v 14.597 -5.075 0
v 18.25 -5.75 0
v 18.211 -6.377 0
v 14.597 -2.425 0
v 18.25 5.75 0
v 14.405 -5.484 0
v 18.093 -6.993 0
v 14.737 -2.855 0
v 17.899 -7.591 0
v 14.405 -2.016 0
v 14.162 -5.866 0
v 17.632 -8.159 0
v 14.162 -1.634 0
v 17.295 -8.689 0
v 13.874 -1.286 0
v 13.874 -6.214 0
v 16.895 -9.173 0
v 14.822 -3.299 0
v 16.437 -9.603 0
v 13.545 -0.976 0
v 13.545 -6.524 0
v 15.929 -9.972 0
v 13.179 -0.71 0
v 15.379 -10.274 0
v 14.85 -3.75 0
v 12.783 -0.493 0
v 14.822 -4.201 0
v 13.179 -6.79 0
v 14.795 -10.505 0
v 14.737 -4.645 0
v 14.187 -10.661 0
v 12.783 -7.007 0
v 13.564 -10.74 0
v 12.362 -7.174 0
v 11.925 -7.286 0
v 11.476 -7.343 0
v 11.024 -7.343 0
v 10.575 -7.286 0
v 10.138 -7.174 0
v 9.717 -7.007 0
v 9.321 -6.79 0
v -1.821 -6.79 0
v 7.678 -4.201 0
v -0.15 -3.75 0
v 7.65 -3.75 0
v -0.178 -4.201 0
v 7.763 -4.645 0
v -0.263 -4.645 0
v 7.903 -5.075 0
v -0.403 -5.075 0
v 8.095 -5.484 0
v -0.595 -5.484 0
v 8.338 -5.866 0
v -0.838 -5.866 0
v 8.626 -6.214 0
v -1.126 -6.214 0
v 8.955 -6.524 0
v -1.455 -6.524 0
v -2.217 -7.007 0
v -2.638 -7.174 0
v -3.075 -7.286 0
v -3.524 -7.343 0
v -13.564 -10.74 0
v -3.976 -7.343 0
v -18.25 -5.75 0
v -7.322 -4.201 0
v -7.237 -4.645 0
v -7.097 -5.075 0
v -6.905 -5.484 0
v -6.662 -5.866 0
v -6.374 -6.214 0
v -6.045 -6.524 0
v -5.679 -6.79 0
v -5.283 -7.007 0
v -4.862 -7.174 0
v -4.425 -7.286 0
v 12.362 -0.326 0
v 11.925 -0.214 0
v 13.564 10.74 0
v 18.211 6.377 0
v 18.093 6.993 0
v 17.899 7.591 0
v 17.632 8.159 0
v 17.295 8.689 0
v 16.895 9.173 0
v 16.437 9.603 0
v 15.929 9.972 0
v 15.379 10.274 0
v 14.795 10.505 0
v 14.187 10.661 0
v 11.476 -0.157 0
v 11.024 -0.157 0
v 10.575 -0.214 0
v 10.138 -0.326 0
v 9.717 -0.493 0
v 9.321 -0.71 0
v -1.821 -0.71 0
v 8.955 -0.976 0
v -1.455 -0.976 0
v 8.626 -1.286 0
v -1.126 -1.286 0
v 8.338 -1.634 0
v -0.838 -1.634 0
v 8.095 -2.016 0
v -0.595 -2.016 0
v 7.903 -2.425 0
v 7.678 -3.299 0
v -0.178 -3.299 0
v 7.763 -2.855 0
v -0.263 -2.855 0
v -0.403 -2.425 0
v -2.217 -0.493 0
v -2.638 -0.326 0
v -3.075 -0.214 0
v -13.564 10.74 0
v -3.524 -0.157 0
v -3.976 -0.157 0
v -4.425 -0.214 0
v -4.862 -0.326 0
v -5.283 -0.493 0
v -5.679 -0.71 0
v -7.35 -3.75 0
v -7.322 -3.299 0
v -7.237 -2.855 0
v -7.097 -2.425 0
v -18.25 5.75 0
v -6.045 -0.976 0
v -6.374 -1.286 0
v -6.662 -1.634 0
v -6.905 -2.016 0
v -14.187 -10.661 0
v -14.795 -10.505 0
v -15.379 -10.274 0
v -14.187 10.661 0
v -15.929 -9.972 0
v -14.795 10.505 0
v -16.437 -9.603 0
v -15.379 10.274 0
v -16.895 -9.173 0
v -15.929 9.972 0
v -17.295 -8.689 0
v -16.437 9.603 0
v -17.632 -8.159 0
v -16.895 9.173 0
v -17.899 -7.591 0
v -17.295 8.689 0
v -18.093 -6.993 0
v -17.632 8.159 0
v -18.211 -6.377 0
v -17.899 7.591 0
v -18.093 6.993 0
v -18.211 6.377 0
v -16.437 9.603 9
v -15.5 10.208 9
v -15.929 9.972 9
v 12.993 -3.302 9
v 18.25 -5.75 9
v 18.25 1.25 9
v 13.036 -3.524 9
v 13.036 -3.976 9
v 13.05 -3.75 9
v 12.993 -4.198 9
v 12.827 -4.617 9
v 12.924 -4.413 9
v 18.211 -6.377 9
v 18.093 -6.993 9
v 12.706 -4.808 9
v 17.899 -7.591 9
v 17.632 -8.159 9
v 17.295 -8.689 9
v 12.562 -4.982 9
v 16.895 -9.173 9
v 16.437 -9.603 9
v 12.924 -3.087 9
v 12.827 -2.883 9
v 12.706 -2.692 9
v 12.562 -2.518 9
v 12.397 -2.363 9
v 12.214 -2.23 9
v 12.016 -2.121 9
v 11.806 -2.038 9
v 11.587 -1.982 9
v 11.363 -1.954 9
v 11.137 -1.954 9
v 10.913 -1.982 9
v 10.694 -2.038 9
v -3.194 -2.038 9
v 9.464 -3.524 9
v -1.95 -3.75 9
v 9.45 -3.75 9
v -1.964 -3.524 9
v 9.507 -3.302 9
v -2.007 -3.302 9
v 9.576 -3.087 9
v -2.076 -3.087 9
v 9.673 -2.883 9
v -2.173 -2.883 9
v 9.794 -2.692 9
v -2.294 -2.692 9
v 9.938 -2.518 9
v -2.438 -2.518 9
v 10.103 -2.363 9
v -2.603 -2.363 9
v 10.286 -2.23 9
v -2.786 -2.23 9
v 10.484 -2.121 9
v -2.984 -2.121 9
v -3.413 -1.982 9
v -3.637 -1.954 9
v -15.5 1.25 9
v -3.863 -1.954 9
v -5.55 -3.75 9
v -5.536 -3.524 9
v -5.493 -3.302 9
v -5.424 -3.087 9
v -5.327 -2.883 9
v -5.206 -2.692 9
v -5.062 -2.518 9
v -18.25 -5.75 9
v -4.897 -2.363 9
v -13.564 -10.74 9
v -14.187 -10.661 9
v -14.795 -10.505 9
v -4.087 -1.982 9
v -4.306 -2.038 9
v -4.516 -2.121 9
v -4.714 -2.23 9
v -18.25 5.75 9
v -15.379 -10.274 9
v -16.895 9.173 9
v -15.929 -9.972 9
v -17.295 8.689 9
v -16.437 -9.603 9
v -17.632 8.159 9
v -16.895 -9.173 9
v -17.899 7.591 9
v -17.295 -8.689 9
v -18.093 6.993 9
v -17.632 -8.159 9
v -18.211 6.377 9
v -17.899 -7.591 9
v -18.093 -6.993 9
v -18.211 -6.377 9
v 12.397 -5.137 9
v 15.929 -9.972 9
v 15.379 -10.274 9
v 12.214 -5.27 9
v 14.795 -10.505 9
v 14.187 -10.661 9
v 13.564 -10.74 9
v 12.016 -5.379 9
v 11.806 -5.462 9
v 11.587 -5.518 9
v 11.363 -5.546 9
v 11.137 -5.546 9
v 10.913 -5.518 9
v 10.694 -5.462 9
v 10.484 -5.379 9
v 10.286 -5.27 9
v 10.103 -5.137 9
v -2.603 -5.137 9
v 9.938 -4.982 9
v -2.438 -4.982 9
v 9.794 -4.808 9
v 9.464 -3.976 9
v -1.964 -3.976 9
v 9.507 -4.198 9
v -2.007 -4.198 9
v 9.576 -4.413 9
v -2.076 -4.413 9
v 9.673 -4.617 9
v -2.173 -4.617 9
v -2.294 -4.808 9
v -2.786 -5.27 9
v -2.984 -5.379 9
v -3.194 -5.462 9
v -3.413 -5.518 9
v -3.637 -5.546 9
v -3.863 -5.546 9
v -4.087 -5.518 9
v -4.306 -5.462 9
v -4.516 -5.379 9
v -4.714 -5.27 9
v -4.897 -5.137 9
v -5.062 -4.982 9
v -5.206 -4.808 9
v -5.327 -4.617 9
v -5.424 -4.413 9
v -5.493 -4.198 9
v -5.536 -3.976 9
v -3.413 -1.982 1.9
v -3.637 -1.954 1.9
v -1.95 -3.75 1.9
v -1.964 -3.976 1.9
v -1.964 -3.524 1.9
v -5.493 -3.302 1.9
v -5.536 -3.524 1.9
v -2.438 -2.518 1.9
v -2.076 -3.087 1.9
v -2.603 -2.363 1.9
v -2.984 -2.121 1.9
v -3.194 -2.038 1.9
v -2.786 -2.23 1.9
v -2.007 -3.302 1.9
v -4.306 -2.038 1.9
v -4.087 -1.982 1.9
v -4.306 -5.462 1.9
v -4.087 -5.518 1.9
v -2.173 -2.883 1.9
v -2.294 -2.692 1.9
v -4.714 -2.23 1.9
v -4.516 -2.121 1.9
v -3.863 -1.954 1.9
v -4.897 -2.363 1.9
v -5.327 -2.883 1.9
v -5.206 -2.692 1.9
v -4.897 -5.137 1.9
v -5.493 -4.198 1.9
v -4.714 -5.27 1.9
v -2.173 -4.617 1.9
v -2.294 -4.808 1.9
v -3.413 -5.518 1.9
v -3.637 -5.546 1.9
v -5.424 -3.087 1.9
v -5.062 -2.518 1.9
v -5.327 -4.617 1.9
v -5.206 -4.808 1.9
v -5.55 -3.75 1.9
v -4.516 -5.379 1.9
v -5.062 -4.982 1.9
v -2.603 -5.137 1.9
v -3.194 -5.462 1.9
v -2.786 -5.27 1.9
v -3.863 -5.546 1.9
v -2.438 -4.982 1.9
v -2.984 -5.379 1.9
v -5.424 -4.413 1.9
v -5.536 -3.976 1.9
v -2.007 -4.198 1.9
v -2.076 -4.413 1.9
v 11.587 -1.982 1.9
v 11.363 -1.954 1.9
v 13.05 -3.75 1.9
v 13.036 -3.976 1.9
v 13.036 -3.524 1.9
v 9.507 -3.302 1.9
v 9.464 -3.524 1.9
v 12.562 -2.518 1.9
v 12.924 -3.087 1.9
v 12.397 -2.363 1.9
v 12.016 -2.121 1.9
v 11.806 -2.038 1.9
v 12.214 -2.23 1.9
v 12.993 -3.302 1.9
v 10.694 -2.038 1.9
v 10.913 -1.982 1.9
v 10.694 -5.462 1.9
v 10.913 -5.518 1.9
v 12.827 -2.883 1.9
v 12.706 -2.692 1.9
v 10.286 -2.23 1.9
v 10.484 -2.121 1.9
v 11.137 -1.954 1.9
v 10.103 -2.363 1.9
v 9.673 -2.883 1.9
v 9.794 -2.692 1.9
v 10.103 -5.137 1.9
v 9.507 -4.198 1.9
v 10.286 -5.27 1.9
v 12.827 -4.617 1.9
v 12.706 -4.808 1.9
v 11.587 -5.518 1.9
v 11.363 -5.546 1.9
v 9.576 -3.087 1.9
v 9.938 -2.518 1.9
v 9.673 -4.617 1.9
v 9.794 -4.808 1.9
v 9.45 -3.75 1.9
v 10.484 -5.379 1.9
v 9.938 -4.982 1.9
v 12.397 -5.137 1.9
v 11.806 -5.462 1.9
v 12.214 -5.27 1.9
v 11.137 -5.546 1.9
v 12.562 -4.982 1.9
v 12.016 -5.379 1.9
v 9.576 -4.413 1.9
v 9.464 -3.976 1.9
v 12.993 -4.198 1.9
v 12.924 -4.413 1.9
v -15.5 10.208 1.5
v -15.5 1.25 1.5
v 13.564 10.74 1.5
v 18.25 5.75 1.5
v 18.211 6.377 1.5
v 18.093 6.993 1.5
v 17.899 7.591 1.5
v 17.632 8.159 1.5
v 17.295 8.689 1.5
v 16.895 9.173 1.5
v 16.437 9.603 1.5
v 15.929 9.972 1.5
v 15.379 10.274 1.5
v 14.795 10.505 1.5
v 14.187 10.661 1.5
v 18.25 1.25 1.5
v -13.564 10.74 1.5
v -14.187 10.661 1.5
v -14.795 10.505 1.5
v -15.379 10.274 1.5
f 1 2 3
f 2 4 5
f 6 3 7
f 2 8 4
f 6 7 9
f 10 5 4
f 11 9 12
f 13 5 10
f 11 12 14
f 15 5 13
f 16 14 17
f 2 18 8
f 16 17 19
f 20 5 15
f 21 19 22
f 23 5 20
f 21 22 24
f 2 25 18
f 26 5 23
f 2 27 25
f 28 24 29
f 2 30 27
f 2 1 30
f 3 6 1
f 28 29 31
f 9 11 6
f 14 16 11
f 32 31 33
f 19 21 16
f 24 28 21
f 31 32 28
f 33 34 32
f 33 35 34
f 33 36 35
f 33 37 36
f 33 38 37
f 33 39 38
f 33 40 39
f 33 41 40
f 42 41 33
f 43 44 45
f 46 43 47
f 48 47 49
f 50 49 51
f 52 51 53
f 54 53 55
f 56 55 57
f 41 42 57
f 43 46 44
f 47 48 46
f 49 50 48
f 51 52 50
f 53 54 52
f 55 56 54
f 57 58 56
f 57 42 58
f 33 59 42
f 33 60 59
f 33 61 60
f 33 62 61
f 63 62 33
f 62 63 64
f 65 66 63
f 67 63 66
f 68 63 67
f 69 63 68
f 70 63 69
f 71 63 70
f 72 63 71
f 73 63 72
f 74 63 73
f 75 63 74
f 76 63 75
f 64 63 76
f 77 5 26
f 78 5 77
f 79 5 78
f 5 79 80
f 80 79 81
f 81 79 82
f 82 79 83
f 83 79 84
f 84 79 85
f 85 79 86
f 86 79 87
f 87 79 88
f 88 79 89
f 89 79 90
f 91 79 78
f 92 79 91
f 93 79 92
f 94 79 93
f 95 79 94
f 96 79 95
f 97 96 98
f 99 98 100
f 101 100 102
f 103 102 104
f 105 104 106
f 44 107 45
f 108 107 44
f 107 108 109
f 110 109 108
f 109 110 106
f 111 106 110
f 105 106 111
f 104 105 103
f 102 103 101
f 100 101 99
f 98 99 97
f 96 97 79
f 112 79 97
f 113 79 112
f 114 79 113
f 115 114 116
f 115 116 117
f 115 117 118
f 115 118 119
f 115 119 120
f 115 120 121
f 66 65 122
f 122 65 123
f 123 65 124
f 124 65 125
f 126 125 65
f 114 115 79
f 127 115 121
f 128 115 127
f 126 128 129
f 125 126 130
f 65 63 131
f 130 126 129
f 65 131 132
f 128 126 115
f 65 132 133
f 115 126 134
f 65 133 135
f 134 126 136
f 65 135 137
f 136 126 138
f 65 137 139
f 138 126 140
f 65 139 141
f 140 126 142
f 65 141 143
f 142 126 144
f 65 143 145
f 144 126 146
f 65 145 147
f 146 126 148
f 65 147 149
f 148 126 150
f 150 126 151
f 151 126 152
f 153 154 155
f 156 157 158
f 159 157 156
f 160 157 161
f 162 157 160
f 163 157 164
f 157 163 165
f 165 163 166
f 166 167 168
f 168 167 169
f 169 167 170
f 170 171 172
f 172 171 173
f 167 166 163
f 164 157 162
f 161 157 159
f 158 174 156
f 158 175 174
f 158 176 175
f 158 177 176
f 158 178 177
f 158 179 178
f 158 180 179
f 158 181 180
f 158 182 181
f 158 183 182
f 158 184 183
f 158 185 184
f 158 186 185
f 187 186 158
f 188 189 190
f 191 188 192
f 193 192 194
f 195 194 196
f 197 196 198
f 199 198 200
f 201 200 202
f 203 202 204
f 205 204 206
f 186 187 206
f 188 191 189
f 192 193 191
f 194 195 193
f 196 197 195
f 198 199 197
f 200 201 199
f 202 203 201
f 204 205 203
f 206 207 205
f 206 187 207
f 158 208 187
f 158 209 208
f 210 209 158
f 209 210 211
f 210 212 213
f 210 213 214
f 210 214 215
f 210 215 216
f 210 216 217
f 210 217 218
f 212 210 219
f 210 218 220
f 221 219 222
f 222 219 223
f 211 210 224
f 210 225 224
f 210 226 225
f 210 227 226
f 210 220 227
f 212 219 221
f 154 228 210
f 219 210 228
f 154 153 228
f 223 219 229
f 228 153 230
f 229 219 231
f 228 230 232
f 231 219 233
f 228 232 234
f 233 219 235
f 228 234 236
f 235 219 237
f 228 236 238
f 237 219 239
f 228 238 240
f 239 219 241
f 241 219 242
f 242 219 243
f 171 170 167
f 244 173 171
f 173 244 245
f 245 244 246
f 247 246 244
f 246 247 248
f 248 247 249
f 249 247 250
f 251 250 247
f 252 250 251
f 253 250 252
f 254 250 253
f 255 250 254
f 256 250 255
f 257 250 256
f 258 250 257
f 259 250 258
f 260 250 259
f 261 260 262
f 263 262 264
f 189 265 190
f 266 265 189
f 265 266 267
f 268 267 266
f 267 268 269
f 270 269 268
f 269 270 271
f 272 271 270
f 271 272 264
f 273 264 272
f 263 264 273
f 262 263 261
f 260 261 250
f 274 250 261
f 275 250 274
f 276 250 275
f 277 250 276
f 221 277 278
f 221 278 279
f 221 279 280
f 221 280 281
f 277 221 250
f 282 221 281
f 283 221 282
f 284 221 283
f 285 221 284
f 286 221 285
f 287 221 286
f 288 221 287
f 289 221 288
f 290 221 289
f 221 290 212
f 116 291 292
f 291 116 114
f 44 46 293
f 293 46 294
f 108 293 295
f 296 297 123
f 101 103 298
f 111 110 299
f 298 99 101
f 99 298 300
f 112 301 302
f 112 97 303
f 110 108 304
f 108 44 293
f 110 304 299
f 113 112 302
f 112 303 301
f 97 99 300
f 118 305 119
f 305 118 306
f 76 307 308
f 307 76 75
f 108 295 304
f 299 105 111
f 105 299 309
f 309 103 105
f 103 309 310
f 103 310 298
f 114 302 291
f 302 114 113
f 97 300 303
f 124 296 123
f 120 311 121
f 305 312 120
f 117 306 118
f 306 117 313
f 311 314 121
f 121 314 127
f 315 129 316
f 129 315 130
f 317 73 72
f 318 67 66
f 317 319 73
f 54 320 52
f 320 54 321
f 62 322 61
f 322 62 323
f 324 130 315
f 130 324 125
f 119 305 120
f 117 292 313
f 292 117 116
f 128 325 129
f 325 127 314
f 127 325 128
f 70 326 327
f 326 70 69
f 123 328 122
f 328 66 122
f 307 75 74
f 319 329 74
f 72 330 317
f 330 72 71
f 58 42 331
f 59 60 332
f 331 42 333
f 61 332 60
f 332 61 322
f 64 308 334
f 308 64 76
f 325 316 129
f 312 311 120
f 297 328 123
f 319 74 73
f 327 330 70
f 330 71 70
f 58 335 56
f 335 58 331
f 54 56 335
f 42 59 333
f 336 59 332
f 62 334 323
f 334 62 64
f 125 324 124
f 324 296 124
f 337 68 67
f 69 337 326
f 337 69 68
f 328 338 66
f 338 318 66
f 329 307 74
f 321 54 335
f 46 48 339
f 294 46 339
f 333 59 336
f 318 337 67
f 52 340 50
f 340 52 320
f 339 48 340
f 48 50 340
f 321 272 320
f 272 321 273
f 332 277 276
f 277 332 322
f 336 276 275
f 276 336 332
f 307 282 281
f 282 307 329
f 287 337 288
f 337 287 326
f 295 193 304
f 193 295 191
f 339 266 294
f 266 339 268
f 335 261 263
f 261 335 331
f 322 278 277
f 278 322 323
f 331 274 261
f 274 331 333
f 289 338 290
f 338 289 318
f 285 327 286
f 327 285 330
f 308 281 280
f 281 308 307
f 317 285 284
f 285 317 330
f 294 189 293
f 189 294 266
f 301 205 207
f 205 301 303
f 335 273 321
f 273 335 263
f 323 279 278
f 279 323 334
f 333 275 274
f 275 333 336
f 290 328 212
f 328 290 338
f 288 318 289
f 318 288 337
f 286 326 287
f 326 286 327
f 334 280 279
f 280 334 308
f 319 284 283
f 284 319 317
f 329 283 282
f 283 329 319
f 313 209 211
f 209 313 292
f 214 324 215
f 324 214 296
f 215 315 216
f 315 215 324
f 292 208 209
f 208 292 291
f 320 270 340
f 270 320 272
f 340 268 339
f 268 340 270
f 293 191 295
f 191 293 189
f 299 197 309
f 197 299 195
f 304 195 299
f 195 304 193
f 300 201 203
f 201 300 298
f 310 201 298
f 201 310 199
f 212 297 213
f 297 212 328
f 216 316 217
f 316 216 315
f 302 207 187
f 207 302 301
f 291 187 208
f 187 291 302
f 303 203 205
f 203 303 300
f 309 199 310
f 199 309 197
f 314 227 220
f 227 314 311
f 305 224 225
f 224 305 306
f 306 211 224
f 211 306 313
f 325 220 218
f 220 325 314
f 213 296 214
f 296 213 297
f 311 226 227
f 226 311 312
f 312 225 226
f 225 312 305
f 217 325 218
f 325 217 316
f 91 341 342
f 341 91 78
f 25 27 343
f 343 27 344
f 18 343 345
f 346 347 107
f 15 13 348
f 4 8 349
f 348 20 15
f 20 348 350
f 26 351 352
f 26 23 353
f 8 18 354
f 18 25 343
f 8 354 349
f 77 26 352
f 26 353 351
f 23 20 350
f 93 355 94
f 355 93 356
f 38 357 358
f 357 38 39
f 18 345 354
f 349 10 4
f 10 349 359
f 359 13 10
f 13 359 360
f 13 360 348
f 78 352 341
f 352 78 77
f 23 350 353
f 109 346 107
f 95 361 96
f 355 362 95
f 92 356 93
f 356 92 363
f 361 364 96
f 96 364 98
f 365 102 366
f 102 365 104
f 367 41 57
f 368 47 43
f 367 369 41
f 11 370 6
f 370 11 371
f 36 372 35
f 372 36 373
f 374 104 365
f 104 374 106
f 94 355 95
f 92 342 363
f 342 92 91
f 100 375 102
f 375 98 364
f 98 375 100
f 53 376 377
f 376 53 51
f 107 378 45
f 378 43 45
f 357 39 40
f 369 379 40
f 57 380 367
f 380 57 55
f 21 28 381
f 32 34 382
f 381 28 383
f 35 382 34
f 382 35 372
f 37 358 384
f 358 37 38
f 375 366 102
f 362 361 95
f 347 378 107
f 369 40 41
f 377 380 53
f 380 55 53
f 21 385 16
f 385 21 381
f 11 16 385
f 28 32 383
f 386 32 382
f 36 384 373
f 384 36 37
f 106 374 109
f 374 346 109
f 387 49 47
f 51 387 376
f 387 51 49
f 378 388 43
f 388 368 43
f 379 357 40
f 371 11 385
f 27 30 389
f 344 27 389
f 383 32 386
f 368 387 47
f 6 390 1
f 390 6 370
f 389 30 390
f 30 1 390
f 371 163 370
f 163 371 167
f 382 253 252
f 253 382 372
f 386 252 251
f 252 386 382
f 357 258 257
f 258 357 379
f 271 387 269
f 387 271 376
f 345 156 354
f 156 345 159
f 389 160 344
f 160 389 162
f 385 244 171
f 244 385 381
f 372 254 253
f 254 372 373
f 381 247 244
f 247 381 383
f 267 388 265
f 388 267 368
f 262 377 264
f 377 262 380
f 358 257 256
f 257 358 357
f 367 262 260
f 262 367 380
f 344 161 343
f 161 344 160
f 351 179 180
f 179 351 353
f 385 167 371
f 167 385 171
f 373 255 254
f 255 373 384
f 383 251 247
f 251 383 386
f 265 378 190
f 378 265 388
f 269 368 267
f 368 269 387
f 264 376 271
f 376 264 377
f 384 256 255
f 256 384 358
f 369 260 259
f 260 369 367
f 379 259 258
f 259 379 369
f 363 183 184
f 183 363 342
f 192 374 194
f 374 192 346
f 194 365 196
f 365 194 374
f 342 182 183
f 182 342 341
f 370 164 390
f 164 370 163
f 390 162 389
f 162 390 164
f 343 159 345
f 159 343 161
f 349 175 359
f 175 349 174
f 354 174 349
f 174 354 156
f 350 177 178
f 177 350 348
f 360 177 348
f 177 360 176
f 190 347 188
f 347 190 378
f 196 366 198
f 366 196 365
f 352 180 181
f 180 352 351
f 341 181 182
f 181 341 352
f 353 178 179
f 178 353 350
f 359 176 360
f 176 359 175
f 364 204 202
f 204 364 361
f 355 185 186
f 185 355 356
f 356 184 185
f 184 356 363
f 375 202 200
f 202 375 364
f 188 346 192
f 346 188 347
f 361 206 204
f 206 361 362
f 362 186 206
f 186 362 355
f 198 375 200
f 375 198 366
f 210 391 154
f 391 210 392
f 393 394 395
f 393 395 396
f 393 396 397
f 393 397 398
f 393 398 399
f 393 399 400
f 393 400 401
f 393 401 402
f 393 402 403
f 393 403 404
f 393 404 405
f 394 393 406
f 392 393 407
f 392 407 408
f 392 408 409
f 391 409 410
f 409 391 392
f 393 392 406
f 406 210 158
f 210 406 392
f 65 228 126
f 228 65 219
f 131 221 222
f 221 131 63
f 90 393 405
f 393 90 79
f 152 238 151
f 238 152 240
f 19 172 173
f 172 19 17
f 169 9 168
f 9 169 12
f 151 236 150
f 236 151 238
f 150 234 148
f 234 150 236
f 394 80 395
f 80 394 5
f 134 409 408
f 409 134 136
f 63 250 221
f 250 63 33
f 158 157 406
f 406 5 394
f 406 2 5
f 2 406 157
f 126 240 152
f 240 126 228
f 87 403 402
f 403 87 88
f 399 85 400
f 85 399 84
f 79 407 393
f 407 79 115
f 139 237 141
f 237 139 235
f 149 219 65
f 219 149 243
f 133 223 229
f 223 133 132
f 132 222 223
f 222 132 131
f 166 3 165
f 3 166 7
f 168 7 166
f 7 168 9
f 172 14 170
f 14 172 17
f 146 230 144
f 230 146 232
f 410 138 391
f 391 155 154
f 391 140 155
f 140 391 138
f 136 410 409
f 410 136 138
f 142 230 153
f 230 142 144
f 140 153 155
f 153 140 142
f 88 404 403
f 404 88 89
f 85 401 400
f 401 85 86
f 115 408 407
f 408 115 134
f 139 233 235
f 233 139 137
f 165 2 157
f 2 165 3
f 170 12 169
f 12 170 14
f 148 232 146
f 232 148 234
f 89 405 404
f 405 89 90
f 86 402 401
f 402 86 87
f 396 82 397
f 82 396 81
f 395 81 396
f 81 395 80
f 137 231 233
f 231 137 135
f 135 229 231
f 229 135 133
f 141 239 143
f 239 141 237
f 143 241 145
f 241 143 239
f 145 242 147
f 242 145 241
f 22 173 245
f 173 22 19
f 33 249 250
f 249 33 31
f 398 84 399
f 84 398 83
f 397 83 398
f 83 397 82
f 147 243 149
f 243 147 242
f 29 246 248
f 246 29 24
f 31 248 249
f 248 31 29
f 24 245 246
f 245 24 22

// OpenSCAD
$fn = 50;


difference() {
	union() {
		hull() {
			translate(v = [-13.2500000000, 5.7500000000, 0]) {
				cylinder(h = 9, r = 5);
			}
			translate(v = [13.2500000000, 5.7500000000, 0]) {
				cylinder(h = 9, r = 5);
			}
			translate(v = [-13.2500000000, -5.7500000000, 0]) {
				cylinder(h = 9, r = 5);
			}
			translate(v = [13.2500000000, -5.7500000000, 0]) {
				cylinder(h = 9, r = 5);
			}
		}
	}
	union() {
		translate(v = [-3.7500000000, -3.7500000000, 0]) {
			rotate(a = [180, 0, 0]) {
				difference() {
					union() {
						#translate(v = [0, 0, -9.0000000000]) {
							cylinder(h = 9, r = 1.5000000000);
						}
						#translate(v = [0, 0, -1.9000000000]) {
							cylinder(h = 1.9000000000, r1 = 1.8000000000, r2 = 3.6000000000);
						}
						#translate(v = [0, 0, -9.0000000000]) {
							cylinder(h = 9, r = 1.8000000000);
						}
						#translate(v = [0, 0, -9.0000000000]) {
							cylinder(h = 9, r = 1.5000000000);
						}
					}
					union();
				}
			}
		}
		translate(v = [11.2500000000, -3.7500000000, 0]) {
			rotate(a = [180, 0, 0]) {
				difference() {
					union() {
						#translate(v = [0, 0, -9.0000000000]) {
							cylinder(h = 9, r = 1.5000000000);
						}
						#translate(v = [0, 0, -1.9000000000]) {
							cylinder(h = 1.9000000000, r1 = 1.8000000000, r2 = 3.6000000000);
						}
						#translate(v = [0, 0, -9.0000000000]) {
							cylinder(h = 9, r = 1.8000000000);
						}
						#translate(v = [0, 0, -9.0000000000]) {
							cylinder(h = 9, r = 1.5000000000);
						}
					}
					union();
				}
			}
		}
		translate(v = [26.2500000000, -3.7500000000, 0]) {
			rotate(a = [180, 0, 0]) {
				difference() {
					union() {
						#translate(v = [0, 0, -9.0000000000]) {
							cylinder(h = 9, r = 1.5000000000);
						}
						#translate(v = [0, 0, -1.9000000000]) {
							cylinder(h = 1.9000000000, r1 = 1.8000000000, r2 = 3.6000000000);
						}
						#translate(v = [0, 0, -9.0000000000]) {
							cylinder(h = 9, r = 1.8000000000);
						}
						#translate(v = [0, 0, -9.0000000000]) {
							cylinder(h = 9, r = 1.5000000000);
						}
					}
					union();
				}
			}
		}
		translate(v = [41.2500000000, -3.7500000000, 0]) {
			rotate(a = [180, 0, 0]) {
				difference() {
					union() {
						#translate(v = [0, 0, -9.0000000000]) {
							cylinder(h = 9, r = 1.5000000000);
						}
						#translate(v = [0, 0, -1.9000000000]) {
							cylinder(h = 1.9000000000, r1 = 1.8000000000, r2 = 3.6000000000);
						}
						#translate(v = [0, 0, -9.0000000000]) {
							cylinder(h = 9, r = 1.8000000000);
						}
						#translate(v = [0, 0, -9.0000000000]) {
							cylinder(h = 9, r = 1.5000000000);
						}
					}
					union();
				}
			}
		}
		#translate(v = [-15.5000000000, 1.2500000000, 1.5000000000]) {
			cube(size = [101.6000000000, 155.4000000000, 7.5000000000]);
		}
	}
}
